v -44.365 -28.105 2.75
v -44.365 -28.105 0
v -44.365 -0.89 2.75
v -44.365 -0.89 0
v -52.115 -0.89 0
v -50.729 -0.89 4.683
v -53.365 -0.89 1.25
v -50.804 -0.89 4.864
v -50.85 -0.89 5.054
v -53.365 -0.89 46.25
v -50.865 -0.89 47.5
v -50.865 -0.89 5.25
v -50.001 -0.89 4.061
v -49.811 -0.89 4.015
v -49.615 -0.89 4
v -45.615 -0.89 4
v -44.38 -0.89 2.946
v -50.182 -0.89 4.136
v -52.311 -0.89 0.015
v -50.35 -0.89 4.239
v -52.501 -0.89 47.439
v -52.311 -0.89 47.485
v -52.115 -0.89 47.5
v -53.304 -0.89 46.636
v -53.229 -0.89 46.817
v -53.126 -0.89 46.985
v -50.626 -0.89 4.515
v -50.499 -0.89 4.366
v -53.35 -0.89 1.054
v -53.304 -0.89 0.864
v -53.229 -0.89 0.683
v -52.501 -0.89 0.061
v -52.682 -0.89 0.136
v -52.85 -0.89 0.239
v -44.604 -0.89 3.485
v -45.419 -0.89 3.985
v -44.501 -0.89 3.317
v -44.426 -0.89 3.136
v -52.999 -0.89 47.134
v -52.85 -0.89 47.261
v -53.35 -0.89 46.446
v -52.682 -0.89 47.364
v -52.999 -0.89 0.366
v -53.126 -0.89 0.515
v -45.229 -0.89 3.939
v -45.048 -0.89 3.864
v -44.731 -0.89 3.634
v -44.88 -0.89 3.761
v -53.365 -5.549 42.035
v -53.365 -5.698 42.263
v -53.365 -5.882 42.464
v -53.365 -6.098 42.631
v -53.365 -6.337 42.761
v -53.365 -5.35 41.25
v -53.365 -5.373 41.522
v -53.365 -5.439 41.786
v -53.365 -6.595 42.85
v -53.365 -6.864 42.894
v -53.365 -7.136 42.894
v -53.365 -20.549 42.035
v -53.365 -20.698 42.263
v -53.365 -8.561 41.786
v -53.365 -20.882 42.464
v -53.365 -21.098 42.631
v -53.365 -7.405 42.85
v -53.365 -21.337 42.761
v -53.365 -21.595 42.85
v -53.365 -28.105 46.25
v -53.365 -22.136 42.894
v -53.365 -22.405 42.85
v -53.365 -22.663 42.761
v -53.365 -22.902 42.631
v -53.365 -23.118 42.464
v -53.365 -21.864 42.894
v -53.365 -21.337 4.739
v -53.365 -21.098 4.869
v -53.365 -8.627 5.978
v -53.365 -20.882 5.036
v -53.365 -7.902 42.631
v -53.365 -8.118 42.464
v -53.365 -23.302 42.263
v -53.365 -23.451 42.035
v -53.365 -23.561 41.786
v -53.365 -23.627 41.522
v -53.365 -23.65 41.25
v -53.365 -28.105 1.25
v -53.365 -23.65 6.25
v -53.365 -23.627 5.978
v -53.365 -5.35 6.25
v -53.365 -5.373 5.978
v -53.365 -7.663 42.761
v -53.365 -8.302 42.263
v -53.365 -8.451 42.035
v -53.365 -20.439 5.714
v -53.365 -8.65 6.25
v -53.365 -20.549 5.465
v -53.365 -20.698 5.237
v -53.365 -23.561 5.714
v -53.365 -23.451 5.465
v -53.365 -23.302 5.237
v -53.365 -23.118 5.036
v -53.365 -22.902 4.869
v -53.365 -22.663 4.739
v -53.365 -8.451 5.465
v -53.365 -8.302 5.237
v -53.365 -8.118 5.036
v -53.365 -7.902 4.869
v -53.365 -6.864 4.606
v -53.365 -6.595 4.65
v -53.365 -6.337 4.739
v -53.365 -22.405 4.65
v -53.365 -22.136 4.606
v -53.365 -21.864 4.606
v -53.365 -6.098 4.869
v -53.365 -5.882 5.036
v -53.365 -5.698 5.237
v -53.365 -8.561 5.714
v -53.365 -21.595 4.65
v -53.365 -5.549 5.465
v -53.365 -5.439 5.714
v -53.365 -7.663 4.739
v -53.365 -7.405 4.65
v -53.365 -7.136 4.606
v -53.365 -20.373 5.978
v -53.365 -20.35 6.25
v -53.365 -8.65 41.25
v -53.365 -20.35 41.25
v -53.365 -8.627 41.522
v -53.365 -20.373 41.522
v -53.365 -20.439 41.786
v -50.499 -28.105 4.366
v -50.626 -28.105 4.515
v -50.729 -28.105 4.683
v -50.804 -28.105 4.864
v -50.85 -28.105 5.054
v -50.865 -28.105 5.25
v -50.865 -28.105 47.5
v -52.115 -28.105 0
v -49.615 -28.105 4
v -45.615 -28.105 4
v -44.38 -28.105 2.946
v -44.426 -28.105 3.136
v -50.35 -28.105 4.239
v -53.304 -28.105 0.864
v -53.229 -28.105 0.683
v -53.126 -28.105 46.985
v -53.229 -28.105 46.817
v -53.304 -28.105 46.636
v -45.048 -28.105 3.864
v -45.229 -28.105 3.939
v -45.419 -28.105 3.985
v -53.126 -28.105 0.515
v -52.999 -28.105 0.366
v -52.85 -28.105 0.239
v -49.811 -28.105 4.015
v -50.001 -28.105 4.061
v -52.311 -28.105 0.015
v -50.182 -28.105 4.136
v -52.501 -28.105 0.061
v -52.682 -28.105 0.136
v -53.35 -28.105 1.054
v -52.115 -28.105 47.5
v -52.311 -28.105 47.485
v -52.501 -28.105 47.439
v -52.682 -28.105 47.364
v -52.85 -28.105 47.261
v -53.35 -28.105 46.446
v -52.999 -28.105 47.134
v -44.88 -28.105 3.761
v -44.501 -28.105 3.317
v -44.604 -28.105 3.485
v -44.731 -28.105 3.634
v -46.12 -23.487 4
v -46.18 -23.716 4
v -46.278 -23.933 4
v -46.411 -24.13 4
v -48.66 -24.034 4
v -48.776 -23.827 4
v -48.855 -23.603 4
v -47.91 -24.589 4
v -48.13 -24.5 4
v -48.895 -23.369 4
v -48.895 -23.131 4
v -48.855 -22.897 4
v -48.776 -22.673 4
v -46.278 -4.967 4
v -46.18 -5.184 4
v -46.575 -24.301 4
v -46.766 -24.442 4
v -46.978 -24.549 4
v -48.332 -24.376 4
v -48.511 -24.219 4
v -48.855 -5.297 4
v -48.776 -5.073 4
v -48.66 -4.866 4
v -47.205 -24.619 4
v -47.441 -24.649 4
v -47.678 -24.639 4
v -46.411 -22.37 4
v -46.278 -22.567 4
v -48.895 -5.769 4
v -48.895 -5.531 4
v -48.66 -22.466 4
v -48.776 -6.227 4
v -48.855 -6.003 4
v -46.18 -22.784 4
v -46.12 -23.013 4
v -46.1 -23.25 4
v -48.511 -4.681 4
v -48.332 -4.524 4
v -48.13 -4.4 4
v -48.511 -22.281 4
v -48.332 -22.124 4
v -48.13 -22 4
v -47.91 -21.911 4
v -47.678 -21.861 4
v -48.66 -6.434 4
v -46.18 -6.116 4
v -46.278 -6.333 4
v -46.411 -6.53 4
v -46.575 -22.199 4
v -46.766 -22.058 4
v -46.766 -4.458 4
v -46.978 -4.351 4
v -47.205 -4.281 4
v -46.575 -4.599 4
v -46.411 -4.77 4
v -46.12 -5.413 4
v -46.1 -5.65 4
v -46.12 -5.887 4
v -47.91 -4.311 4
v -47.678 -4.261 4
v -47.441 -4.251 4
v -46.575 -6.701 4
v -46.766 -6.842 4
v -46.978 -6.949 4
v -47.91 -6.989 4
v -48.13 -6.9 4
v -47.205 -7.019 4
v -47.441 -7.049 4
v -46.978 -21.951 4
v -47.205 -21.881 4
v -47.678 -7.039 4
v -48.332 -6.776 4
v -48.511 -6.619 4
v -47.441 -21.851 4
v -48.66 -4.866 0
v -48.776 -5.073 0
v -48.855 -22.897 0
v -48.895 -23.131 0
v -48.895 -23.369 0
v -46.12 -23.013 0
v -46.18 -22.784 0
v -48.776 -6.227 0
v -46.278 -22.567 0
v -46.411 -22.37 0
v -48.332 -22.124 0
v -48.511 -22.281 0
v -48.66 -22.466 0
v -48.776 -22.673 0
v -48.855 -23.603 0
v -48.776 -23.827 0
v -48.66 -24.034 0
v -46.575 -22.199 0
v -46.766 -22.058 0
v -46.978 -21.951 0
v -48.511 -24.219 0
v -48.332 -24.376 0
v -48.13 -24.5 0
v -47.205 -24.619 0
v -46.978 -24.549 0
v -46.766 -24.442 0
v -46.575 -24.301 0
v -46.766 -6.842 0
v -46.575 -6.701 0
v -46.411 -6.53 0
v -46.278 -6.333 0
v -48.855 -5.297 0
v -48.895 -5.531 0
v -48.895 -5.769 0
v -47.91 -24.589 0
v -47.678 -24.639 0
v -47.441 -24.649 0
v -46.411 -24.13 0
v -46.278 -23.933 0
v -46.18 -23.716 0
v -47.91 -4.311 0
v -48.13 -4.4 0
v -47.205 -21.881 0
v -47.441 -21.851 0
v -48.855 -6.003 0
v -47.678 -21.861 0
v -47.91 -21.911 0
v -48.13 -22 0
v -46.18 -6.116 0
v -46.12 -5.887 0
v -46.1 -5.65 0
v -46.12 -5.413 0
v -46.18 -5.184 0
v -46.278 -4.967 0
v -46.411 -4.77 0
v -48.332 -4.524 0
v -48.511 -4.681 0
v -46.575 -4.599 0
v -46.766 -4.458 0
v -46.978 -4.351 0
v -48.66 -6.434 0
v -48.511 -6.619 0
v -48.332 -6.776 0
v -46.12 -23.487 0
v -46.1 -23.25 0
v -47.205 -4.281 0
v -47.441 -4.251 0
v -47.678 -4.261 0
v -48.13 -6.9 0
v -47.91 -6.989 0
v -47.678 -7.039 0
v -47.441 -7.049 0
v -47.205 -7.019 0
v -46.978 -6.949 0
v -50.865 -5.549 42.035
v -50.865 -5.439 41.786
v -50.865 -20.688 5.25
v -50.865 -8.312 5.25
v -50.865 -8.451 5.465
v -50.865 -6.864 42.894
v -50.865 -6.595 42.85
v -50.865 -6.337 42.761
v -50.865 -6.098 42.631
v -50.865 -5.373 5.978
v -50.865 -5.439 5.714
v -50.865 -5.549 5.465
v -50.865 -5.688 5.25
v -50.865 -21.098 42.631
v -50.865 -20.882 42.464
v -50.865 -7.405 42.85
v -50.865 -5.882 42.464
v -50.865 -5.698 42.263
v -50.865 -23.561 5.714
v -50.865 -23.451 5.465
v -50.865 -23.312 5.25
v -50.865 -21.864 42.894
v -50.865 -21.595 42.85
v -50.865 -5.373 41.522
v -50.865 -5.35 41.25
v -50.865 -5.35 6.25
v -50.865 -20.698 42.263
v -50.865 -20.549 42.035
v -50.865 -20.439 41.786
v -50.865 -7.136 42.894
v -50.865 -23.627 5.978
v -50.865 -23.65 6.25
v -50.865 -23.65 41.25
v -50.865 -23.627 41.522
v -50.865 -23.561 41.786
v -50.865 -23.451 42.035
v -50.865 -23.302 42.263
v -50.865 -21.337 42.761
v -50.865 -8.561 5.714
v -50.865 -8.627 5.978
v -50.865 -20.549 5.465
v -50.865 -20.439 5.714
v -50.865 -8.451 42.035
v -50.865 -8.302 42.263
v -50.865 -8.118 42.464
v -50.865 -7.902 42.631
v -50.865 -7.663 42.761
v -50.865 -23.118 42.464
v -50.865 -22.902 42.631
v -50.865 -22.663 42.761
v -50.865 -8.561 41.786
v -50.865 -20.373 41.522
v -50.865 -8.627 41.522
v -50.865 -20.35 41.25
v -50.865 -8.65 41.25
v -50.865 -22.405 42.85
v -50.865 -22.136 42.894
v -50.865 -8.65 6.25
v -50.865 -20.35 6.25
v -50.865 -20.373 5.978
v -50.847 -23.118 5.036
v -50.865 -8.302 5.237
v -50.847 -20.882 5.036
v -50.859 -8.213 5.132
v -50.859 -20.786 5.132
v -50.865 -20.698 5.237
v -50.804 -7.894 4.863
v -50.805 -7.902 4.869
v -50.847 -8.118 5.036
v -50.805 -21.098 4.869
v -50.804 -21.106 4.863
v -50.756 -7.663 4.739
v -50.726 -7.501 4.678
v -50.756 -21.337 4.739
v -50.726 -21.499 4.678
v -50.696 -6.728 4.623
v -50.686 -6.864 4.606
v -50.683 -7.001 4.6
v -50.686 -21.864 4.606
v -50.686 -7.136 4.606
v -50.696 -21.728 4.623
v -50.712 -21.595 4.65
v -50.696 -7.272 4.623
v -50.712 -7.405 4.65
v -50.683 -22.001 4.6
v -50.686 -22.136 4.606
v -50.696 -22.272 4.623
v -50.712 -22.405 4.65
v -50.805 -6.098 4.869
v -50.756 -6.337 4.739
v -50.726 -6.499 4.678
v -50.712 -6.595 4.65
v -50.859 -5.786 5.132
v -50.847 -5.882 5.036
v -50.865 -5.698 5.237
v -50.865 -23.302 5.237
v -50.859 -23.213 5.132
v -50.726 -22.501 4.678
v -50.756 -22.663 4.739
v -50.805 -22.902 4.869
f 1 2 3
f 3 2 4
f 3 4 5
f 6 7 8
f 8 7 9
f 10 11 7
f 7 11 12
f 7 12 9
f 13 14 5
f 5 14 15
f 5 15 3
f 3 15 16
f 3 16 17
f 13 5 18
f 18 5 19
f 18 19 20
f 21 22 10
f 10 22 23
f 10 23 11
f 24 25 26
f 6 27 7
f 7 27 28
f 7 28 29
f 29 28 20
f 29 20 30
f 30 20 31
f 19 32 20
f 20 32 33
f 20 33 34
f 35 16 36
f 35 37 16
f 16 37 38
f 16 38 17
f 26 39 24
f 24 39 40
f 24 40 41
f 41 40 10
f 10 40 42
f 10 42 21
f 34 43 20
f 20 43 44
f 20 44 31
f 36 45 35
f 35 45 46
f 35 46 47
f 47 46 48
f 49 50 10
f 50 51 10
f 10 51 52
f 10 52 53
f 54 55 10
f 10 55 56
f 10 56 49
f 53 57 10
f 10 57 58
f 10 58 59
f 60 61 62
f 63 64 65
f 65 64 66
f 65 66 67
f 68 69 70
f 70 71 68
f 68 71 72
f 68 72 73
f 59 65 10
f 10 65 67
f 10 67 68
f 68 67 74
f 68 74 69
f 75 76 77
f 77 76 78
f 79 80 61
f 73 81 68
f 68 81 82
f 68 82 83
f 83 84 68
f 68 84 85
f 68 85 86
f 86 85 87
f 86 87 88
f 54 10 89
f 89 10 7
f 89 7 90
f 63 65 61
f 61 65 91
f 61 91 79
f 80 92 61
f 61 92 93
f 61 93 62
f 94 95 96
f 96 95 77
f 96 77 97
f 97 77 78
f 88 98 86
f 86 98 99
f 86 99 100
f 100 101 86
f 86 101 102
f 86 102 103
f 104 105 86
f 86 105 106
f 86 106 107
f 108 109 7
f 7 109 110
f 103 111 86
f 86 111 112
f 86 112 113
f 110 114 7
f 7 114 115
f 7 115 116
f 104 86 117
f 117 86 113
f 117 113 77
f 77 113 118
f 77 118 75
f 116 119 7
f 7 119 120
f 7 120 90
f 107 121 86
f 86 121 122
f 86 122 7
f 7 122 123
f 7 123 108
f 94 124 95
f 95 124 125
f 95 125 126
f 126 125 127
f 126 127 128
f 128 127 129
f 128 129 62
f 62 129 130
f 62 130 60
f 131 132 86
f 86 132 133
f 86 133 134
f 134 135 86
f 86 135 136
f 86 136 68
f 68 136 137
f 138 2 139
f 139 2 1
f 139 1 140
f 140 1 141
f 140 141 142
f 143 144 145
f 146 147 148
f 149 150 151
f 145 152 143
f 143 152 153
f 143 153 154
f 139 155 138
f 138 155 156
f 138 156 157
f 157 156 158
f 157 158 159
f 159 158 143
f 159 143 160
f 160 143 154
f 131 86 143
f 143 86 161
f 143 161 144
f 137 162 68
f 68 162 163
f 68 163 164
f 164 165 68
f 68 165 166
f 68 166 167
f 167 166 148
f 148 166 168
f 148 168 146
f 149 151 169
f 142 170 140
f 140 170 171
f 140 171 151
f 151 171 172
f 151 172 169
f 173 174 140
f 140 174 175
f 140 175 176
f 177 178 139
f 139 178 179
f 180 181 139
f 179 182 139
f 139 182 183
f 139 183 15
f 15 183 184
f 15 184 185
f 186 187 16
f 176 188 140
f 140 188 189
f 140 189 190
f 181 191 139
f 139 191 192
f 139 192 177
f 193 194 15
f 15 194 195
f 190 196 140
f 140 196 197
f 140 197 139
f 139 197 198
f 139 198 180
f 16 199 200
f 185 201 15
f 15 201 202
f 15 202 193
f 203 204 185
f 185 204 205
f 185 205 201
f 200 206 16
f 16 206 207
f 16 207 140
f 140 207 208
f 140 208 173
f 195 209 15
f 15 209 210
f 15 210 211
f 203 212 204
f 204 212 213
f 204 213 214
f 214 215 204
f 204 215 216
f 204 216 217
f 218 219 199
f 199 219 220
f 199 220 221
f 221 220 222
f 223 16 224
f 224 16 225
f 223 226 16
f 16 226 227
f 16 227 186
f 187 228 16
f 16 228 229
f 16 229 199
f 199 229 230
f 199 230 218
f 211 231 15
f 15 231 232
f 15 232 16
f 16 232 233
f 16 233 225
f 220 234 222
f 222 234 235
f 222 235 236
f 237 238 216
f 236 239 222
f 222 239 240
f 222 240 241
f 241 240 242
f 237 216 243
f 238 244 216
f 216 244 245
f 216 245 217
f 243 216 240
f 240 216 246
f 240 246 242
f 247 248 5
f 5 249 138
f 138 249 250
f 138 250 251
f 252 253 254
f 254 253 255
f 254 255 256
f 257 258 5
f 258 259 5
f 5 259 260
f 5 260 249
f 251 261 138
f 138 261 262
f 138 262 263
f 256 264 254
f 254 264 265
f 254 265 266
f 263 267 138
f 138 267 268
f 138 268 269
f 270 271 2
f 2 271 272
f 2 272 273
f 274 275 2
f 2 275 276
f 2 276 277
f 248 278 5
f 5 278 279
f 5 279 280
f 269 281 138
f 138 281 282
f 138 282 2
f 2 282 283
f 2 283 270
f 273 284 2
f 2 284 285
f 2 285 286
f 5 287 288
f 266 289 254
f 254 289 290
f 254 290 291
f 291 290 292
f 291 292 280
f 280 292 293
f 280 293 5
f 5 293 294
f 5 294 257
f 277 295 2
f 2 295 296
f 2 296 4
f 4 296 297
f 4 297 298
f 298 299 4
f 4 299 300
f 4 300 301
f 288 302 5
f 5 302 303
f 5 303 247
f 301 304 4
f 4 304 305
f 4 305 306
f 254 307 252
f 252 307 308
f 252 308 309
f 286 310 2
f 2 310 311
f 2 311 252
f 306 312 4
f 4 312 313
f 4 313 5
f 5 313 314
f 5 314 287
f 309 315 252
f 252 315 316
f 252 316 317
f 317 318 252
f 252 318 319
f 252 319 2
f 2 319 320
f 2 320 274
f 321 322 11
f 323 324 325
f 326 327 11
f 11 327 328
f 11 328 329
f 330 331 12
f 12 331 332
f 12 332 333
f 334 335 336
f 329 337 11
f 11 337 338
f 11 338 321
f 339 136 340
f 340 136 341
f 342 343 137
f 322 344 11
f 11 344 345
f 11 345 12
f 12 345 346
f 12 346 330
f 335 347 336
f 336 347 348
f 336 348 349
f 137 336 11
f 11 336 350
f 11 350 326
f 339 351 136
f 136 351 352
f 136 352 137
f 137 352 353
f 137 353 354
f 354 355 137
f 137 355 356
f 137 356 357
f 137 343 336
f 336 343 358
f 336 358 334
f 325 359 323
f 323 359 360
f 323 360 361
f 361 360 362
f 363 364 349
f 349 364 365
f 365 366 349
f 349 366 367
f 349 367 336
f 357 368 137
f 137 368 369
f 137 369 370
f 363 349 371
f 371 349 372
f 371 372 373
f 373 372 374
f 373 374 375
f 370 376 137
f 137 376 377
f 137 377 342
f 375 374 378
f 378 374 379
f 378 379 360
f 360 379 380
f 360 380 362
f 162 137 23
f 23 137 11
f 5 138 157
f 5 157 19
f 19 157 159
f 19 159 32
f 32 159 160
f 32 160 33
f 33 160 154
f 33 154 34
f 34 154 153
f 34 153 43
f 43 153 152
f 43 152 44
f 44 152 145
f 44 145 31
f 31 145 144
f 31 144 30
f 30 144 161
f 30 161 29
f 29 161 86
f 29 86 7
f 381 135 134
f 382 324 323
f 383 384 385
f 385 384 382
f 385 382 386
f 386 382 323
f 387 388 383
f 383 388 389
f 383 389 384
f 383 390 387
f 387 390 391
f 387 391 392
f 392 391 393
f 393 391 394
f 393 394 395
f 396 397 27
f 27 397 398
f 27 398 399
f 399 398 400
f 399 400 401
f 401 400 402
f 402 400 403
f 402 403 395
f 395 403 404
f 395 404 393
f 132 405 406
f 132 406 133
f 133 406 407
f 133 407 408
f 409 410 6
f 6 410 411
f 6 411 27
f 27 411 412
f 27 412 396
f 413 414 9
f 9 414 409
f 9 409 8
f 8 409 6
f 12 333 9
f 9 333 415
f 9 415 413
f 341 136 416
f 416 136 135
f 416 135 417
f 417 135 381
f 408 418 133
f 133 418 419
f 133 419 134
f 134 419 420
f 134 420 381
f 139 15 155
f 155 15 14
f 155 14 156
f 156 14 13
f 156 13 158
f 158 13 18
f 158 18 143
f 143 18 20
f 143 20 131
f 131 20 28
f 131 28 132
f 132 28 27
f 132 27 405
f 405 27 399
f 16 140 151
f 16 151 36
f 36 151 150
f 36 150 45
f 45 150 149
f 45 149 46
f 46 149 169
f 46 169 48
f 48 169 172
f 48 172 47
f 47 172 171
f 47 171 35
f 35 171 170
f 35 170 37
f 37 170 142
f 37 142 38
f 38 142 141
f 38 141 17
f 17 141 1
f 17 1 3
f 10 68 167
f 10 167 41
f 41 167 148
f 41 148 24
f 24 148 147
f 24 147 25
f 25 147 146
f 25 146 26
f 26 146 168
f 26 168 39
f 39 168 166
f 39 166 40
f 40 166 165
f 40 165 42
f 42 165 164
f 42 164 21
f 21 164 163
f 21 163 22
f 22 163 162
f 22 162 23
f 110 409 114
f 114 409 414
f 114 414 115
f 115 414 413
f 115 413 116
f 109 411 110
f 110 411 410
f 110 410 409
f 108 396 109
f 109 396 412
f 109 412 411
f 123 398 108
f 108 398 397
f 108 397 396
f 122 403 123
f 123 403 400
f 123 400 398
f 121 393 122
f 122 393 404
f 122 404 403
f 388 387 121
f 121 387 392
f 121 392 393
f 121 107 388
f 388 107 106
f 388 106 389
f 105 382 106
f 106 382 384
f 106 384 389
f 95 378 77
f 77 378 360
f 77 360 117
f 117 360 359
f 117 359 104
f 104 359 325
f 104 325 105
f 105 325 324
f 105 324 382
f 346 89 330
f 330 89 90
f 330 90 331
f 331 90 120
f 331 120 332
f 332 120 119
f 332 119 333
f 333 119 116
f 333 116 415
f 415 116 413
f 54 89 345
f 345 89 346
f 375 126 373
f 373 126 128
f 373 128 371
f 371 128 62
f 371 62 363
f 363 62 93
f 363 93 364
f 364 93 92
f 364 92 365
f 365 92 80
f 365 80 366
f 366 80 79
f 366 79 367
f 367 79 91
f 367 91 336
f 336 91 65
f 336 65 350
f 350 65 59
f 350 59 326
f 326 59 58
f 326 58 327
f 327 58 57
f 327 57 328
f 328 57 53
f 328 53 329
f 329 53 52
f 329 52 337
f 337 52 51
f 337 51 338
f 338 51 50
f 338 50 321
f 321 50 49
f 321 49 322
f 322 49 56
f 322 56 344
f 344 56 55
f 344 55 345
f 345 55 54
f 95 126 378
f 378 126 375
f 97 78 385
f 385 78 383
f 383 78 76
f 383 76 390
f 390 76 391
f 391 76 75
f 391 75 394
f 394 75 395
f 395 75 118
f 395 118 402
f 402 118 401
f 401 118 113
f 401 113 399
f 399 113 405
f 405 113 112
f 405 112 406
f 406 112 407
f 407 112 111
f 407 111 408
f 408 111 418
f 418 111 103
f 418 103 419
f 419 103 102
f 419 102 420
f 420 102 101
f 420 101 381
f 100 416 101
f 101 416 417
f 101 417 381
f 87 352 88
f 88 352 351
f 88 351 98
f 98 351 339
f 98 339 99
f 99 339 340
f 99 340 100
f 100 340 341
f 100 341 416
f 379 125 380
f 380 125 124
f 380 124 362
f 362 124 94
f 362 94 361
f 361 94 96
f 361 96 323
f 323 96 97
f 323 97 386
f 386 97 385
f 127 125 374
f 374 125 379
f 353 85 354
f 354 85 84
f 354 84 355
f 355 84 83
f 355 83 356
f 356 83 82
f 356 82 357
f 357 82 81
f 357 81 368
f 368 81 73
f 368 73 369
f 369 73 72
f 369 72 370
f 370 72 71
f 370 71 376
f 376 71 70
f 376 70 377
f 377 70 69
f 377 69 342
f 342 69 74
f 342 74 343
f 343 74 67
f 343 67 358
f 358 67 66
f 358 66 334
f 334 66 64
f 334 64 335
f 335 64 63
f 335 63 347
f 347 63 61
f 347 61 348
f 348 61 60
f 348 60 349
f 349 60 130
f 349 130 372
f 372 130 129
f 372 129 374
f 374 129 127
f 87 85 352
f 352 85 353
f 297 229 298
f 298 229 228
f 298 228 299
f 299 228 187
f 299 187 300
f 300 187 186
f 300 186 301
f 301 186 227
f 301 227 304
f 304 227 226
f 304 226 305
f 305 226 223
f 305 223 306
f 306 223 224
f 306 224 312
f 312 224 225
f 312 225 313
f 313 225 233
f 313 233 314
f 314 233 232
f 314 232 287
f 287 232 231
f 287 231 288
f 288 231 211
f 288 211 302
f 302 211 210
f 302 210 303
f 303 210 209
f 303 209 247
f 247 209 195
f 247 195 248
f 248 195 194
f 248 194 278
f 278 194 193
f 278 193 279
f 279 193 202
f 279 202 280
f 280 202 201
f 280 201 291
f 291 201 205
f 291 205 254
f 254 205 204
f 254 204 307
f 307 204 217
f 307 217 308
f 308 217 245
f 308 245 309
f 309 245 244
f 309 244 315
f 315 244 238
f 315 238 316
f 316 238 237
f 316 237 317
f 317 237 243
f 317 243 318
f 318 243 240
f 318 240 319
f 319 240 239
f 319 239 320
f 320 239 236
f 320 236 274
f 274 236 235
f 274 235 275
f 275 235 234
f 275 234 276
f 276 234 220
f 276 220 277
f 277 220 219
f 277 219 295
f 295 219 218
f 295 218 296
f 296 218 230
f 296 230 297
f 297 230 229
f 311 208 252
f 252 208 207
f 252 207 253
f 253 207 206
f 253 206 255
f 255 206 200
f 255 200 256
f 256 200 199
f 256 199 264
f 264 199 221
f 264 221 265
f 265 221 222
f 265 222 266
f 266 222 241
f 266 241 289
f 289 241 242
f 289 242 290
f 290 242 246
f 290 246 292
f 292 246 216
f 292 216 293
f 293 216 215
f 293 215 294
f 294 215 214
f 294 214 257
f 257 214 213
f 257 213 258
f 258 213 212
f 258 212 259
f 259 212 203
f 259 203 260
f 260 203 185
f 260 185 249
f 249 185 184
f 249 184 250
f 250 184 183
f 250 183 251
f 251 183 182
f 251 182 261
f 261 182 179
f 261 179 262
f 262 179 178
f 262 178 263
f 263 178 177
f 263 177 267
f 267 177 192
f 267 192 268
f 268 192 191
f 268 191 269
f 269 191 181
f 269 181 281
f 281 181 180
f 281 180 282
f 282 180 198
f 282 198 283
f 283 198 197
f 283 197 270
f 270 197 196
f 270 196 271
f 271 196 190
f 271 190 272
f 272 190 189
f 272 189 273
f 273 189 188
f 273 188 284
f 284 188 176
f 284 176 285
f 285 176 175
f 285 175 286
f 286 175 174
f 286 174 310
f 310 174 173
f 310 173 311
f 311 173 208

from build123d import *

# Parameters (mm, degrees)
SKETCH1_W           = 9
SKETCH1_H           = 27.215298634
BOSS_EXTRUDE1_DEPTH = 4
SKETCH2_W           = 2.5
SKETCH2_H           = 27.215298634
BOSS_EXTRUDE2_DEPTH = 43.5
FILLET1_R           = 1.25
CUT_EXTRUDE1_REACH  = 57.921
SKETCH7_R           = 1.4
CUT_EXTRUDE2_DEPTH  = 75.363842374


with BuildPart() as part:
    # Sketch1 → Boss-Extrude1 (new body)
    with BuildSketch(Plane.XY):
        with Locations((-48.865, -14.497649317)):
            Rectangle(SKETCH1_W, SKETCH1_H)
    extrude(amount=BOSS_EXTRUDE1_DEPTH)

    # Sketch2 → Boss-Extrude2 (add)
    with BuildSketch(Plane.XY.offset(4)):
        with Locations((-52.115, -14.497649317)):
            Rectangle(SKETCH2_W, SKETCH2_H)
    extrude(amount=BOSS_EXTRUDE2_DEPTH)

    # Fillet1
    fillet1_edges = [part.edges().sort_by_distance(p)[0] for p in [
        (-50.865, -14.497649317, 4),
        (-53.365, -14.497649317, 47.5),
        (-44.365, -14.497649317, 4),
        (-53.365, -14.497649317, 0),
    ]]
    fillet(fillet1_edges, radius=FILLET1_R)

    # Sketch6 → Cut-Extrude1 (cut, up to next)
    with BuildSketch(Plane.ZY.offset(53.365), mode=Mode.PRIVATE) as cut_extrude1_sk1:
        with BuildLine():
            Line((6.25, -20.35), (41.25, -20.35))
            ThreePointArc((41.25, -20.35), (42.9, -22), (41.25, -23.65))
            Line((41.25, -23.65), (6.25, -23.65))
            ThreePointArc((6.25, -23.65), (4.6, -22), (6.25, -20.35))
        make_face()
    cut_extrude1_tool1 = extrude(cut_extrude1_sk1.sketch, amount=-CUT_EXTRUDE1_REACH, mode=Mode.PRIVATE) & part.part
    # Sketch6 → Cut-Extrude1 (cut, up to next)
    with BuildSketch(Plane.ZY.offset(53.365), mode=Mode.PRIVATE) as cut_extrude1_sk2:
        with BuildLine():
            Line((6.25, -5.35), (41.25, -5.35))
            ThreePointArc((41.25, -5.35), (42.9, -7), (41.25, -8.65))
            Line((41.25, -8.65), (6.25, -8.65))
            ThreePointArc((6.25, -8.65), (4.6, -7), (6.25, -5.35))
        make_face()
    cut_extrude1_tool2 = extrude(cut_extrude1_sk2.sketch, amount=-CUT_EXTRUDE1_REACH, mode=Mode.PRIVATE) & part.part
    add(cut_extrude1_tool1.solids().sort_by_distance((-53.365, -22, 23.75))[0], mode=Mode.SUBTRACT)
    add(cut_extrude1_tool2.solids().sort_by_distance((-53.365, -7, 23.75))[0], mode=Mode.SUBTRACT)

    # Sketch7 → Cut-Extrude2 (cut, through all)
    with BuildSketch(Plane.XY.offset(4)):
        with Locations((-47.5, -23.25)):
            Circle(SKETCH7_R)
        with Locations((-47.5, -5.65)):
            Circle(SKETCH7_R)
    extrude(amount=-CUT_EXTRUDE2_DEPTH, mode=Mode.SUBTRACT)


solid = part.part
